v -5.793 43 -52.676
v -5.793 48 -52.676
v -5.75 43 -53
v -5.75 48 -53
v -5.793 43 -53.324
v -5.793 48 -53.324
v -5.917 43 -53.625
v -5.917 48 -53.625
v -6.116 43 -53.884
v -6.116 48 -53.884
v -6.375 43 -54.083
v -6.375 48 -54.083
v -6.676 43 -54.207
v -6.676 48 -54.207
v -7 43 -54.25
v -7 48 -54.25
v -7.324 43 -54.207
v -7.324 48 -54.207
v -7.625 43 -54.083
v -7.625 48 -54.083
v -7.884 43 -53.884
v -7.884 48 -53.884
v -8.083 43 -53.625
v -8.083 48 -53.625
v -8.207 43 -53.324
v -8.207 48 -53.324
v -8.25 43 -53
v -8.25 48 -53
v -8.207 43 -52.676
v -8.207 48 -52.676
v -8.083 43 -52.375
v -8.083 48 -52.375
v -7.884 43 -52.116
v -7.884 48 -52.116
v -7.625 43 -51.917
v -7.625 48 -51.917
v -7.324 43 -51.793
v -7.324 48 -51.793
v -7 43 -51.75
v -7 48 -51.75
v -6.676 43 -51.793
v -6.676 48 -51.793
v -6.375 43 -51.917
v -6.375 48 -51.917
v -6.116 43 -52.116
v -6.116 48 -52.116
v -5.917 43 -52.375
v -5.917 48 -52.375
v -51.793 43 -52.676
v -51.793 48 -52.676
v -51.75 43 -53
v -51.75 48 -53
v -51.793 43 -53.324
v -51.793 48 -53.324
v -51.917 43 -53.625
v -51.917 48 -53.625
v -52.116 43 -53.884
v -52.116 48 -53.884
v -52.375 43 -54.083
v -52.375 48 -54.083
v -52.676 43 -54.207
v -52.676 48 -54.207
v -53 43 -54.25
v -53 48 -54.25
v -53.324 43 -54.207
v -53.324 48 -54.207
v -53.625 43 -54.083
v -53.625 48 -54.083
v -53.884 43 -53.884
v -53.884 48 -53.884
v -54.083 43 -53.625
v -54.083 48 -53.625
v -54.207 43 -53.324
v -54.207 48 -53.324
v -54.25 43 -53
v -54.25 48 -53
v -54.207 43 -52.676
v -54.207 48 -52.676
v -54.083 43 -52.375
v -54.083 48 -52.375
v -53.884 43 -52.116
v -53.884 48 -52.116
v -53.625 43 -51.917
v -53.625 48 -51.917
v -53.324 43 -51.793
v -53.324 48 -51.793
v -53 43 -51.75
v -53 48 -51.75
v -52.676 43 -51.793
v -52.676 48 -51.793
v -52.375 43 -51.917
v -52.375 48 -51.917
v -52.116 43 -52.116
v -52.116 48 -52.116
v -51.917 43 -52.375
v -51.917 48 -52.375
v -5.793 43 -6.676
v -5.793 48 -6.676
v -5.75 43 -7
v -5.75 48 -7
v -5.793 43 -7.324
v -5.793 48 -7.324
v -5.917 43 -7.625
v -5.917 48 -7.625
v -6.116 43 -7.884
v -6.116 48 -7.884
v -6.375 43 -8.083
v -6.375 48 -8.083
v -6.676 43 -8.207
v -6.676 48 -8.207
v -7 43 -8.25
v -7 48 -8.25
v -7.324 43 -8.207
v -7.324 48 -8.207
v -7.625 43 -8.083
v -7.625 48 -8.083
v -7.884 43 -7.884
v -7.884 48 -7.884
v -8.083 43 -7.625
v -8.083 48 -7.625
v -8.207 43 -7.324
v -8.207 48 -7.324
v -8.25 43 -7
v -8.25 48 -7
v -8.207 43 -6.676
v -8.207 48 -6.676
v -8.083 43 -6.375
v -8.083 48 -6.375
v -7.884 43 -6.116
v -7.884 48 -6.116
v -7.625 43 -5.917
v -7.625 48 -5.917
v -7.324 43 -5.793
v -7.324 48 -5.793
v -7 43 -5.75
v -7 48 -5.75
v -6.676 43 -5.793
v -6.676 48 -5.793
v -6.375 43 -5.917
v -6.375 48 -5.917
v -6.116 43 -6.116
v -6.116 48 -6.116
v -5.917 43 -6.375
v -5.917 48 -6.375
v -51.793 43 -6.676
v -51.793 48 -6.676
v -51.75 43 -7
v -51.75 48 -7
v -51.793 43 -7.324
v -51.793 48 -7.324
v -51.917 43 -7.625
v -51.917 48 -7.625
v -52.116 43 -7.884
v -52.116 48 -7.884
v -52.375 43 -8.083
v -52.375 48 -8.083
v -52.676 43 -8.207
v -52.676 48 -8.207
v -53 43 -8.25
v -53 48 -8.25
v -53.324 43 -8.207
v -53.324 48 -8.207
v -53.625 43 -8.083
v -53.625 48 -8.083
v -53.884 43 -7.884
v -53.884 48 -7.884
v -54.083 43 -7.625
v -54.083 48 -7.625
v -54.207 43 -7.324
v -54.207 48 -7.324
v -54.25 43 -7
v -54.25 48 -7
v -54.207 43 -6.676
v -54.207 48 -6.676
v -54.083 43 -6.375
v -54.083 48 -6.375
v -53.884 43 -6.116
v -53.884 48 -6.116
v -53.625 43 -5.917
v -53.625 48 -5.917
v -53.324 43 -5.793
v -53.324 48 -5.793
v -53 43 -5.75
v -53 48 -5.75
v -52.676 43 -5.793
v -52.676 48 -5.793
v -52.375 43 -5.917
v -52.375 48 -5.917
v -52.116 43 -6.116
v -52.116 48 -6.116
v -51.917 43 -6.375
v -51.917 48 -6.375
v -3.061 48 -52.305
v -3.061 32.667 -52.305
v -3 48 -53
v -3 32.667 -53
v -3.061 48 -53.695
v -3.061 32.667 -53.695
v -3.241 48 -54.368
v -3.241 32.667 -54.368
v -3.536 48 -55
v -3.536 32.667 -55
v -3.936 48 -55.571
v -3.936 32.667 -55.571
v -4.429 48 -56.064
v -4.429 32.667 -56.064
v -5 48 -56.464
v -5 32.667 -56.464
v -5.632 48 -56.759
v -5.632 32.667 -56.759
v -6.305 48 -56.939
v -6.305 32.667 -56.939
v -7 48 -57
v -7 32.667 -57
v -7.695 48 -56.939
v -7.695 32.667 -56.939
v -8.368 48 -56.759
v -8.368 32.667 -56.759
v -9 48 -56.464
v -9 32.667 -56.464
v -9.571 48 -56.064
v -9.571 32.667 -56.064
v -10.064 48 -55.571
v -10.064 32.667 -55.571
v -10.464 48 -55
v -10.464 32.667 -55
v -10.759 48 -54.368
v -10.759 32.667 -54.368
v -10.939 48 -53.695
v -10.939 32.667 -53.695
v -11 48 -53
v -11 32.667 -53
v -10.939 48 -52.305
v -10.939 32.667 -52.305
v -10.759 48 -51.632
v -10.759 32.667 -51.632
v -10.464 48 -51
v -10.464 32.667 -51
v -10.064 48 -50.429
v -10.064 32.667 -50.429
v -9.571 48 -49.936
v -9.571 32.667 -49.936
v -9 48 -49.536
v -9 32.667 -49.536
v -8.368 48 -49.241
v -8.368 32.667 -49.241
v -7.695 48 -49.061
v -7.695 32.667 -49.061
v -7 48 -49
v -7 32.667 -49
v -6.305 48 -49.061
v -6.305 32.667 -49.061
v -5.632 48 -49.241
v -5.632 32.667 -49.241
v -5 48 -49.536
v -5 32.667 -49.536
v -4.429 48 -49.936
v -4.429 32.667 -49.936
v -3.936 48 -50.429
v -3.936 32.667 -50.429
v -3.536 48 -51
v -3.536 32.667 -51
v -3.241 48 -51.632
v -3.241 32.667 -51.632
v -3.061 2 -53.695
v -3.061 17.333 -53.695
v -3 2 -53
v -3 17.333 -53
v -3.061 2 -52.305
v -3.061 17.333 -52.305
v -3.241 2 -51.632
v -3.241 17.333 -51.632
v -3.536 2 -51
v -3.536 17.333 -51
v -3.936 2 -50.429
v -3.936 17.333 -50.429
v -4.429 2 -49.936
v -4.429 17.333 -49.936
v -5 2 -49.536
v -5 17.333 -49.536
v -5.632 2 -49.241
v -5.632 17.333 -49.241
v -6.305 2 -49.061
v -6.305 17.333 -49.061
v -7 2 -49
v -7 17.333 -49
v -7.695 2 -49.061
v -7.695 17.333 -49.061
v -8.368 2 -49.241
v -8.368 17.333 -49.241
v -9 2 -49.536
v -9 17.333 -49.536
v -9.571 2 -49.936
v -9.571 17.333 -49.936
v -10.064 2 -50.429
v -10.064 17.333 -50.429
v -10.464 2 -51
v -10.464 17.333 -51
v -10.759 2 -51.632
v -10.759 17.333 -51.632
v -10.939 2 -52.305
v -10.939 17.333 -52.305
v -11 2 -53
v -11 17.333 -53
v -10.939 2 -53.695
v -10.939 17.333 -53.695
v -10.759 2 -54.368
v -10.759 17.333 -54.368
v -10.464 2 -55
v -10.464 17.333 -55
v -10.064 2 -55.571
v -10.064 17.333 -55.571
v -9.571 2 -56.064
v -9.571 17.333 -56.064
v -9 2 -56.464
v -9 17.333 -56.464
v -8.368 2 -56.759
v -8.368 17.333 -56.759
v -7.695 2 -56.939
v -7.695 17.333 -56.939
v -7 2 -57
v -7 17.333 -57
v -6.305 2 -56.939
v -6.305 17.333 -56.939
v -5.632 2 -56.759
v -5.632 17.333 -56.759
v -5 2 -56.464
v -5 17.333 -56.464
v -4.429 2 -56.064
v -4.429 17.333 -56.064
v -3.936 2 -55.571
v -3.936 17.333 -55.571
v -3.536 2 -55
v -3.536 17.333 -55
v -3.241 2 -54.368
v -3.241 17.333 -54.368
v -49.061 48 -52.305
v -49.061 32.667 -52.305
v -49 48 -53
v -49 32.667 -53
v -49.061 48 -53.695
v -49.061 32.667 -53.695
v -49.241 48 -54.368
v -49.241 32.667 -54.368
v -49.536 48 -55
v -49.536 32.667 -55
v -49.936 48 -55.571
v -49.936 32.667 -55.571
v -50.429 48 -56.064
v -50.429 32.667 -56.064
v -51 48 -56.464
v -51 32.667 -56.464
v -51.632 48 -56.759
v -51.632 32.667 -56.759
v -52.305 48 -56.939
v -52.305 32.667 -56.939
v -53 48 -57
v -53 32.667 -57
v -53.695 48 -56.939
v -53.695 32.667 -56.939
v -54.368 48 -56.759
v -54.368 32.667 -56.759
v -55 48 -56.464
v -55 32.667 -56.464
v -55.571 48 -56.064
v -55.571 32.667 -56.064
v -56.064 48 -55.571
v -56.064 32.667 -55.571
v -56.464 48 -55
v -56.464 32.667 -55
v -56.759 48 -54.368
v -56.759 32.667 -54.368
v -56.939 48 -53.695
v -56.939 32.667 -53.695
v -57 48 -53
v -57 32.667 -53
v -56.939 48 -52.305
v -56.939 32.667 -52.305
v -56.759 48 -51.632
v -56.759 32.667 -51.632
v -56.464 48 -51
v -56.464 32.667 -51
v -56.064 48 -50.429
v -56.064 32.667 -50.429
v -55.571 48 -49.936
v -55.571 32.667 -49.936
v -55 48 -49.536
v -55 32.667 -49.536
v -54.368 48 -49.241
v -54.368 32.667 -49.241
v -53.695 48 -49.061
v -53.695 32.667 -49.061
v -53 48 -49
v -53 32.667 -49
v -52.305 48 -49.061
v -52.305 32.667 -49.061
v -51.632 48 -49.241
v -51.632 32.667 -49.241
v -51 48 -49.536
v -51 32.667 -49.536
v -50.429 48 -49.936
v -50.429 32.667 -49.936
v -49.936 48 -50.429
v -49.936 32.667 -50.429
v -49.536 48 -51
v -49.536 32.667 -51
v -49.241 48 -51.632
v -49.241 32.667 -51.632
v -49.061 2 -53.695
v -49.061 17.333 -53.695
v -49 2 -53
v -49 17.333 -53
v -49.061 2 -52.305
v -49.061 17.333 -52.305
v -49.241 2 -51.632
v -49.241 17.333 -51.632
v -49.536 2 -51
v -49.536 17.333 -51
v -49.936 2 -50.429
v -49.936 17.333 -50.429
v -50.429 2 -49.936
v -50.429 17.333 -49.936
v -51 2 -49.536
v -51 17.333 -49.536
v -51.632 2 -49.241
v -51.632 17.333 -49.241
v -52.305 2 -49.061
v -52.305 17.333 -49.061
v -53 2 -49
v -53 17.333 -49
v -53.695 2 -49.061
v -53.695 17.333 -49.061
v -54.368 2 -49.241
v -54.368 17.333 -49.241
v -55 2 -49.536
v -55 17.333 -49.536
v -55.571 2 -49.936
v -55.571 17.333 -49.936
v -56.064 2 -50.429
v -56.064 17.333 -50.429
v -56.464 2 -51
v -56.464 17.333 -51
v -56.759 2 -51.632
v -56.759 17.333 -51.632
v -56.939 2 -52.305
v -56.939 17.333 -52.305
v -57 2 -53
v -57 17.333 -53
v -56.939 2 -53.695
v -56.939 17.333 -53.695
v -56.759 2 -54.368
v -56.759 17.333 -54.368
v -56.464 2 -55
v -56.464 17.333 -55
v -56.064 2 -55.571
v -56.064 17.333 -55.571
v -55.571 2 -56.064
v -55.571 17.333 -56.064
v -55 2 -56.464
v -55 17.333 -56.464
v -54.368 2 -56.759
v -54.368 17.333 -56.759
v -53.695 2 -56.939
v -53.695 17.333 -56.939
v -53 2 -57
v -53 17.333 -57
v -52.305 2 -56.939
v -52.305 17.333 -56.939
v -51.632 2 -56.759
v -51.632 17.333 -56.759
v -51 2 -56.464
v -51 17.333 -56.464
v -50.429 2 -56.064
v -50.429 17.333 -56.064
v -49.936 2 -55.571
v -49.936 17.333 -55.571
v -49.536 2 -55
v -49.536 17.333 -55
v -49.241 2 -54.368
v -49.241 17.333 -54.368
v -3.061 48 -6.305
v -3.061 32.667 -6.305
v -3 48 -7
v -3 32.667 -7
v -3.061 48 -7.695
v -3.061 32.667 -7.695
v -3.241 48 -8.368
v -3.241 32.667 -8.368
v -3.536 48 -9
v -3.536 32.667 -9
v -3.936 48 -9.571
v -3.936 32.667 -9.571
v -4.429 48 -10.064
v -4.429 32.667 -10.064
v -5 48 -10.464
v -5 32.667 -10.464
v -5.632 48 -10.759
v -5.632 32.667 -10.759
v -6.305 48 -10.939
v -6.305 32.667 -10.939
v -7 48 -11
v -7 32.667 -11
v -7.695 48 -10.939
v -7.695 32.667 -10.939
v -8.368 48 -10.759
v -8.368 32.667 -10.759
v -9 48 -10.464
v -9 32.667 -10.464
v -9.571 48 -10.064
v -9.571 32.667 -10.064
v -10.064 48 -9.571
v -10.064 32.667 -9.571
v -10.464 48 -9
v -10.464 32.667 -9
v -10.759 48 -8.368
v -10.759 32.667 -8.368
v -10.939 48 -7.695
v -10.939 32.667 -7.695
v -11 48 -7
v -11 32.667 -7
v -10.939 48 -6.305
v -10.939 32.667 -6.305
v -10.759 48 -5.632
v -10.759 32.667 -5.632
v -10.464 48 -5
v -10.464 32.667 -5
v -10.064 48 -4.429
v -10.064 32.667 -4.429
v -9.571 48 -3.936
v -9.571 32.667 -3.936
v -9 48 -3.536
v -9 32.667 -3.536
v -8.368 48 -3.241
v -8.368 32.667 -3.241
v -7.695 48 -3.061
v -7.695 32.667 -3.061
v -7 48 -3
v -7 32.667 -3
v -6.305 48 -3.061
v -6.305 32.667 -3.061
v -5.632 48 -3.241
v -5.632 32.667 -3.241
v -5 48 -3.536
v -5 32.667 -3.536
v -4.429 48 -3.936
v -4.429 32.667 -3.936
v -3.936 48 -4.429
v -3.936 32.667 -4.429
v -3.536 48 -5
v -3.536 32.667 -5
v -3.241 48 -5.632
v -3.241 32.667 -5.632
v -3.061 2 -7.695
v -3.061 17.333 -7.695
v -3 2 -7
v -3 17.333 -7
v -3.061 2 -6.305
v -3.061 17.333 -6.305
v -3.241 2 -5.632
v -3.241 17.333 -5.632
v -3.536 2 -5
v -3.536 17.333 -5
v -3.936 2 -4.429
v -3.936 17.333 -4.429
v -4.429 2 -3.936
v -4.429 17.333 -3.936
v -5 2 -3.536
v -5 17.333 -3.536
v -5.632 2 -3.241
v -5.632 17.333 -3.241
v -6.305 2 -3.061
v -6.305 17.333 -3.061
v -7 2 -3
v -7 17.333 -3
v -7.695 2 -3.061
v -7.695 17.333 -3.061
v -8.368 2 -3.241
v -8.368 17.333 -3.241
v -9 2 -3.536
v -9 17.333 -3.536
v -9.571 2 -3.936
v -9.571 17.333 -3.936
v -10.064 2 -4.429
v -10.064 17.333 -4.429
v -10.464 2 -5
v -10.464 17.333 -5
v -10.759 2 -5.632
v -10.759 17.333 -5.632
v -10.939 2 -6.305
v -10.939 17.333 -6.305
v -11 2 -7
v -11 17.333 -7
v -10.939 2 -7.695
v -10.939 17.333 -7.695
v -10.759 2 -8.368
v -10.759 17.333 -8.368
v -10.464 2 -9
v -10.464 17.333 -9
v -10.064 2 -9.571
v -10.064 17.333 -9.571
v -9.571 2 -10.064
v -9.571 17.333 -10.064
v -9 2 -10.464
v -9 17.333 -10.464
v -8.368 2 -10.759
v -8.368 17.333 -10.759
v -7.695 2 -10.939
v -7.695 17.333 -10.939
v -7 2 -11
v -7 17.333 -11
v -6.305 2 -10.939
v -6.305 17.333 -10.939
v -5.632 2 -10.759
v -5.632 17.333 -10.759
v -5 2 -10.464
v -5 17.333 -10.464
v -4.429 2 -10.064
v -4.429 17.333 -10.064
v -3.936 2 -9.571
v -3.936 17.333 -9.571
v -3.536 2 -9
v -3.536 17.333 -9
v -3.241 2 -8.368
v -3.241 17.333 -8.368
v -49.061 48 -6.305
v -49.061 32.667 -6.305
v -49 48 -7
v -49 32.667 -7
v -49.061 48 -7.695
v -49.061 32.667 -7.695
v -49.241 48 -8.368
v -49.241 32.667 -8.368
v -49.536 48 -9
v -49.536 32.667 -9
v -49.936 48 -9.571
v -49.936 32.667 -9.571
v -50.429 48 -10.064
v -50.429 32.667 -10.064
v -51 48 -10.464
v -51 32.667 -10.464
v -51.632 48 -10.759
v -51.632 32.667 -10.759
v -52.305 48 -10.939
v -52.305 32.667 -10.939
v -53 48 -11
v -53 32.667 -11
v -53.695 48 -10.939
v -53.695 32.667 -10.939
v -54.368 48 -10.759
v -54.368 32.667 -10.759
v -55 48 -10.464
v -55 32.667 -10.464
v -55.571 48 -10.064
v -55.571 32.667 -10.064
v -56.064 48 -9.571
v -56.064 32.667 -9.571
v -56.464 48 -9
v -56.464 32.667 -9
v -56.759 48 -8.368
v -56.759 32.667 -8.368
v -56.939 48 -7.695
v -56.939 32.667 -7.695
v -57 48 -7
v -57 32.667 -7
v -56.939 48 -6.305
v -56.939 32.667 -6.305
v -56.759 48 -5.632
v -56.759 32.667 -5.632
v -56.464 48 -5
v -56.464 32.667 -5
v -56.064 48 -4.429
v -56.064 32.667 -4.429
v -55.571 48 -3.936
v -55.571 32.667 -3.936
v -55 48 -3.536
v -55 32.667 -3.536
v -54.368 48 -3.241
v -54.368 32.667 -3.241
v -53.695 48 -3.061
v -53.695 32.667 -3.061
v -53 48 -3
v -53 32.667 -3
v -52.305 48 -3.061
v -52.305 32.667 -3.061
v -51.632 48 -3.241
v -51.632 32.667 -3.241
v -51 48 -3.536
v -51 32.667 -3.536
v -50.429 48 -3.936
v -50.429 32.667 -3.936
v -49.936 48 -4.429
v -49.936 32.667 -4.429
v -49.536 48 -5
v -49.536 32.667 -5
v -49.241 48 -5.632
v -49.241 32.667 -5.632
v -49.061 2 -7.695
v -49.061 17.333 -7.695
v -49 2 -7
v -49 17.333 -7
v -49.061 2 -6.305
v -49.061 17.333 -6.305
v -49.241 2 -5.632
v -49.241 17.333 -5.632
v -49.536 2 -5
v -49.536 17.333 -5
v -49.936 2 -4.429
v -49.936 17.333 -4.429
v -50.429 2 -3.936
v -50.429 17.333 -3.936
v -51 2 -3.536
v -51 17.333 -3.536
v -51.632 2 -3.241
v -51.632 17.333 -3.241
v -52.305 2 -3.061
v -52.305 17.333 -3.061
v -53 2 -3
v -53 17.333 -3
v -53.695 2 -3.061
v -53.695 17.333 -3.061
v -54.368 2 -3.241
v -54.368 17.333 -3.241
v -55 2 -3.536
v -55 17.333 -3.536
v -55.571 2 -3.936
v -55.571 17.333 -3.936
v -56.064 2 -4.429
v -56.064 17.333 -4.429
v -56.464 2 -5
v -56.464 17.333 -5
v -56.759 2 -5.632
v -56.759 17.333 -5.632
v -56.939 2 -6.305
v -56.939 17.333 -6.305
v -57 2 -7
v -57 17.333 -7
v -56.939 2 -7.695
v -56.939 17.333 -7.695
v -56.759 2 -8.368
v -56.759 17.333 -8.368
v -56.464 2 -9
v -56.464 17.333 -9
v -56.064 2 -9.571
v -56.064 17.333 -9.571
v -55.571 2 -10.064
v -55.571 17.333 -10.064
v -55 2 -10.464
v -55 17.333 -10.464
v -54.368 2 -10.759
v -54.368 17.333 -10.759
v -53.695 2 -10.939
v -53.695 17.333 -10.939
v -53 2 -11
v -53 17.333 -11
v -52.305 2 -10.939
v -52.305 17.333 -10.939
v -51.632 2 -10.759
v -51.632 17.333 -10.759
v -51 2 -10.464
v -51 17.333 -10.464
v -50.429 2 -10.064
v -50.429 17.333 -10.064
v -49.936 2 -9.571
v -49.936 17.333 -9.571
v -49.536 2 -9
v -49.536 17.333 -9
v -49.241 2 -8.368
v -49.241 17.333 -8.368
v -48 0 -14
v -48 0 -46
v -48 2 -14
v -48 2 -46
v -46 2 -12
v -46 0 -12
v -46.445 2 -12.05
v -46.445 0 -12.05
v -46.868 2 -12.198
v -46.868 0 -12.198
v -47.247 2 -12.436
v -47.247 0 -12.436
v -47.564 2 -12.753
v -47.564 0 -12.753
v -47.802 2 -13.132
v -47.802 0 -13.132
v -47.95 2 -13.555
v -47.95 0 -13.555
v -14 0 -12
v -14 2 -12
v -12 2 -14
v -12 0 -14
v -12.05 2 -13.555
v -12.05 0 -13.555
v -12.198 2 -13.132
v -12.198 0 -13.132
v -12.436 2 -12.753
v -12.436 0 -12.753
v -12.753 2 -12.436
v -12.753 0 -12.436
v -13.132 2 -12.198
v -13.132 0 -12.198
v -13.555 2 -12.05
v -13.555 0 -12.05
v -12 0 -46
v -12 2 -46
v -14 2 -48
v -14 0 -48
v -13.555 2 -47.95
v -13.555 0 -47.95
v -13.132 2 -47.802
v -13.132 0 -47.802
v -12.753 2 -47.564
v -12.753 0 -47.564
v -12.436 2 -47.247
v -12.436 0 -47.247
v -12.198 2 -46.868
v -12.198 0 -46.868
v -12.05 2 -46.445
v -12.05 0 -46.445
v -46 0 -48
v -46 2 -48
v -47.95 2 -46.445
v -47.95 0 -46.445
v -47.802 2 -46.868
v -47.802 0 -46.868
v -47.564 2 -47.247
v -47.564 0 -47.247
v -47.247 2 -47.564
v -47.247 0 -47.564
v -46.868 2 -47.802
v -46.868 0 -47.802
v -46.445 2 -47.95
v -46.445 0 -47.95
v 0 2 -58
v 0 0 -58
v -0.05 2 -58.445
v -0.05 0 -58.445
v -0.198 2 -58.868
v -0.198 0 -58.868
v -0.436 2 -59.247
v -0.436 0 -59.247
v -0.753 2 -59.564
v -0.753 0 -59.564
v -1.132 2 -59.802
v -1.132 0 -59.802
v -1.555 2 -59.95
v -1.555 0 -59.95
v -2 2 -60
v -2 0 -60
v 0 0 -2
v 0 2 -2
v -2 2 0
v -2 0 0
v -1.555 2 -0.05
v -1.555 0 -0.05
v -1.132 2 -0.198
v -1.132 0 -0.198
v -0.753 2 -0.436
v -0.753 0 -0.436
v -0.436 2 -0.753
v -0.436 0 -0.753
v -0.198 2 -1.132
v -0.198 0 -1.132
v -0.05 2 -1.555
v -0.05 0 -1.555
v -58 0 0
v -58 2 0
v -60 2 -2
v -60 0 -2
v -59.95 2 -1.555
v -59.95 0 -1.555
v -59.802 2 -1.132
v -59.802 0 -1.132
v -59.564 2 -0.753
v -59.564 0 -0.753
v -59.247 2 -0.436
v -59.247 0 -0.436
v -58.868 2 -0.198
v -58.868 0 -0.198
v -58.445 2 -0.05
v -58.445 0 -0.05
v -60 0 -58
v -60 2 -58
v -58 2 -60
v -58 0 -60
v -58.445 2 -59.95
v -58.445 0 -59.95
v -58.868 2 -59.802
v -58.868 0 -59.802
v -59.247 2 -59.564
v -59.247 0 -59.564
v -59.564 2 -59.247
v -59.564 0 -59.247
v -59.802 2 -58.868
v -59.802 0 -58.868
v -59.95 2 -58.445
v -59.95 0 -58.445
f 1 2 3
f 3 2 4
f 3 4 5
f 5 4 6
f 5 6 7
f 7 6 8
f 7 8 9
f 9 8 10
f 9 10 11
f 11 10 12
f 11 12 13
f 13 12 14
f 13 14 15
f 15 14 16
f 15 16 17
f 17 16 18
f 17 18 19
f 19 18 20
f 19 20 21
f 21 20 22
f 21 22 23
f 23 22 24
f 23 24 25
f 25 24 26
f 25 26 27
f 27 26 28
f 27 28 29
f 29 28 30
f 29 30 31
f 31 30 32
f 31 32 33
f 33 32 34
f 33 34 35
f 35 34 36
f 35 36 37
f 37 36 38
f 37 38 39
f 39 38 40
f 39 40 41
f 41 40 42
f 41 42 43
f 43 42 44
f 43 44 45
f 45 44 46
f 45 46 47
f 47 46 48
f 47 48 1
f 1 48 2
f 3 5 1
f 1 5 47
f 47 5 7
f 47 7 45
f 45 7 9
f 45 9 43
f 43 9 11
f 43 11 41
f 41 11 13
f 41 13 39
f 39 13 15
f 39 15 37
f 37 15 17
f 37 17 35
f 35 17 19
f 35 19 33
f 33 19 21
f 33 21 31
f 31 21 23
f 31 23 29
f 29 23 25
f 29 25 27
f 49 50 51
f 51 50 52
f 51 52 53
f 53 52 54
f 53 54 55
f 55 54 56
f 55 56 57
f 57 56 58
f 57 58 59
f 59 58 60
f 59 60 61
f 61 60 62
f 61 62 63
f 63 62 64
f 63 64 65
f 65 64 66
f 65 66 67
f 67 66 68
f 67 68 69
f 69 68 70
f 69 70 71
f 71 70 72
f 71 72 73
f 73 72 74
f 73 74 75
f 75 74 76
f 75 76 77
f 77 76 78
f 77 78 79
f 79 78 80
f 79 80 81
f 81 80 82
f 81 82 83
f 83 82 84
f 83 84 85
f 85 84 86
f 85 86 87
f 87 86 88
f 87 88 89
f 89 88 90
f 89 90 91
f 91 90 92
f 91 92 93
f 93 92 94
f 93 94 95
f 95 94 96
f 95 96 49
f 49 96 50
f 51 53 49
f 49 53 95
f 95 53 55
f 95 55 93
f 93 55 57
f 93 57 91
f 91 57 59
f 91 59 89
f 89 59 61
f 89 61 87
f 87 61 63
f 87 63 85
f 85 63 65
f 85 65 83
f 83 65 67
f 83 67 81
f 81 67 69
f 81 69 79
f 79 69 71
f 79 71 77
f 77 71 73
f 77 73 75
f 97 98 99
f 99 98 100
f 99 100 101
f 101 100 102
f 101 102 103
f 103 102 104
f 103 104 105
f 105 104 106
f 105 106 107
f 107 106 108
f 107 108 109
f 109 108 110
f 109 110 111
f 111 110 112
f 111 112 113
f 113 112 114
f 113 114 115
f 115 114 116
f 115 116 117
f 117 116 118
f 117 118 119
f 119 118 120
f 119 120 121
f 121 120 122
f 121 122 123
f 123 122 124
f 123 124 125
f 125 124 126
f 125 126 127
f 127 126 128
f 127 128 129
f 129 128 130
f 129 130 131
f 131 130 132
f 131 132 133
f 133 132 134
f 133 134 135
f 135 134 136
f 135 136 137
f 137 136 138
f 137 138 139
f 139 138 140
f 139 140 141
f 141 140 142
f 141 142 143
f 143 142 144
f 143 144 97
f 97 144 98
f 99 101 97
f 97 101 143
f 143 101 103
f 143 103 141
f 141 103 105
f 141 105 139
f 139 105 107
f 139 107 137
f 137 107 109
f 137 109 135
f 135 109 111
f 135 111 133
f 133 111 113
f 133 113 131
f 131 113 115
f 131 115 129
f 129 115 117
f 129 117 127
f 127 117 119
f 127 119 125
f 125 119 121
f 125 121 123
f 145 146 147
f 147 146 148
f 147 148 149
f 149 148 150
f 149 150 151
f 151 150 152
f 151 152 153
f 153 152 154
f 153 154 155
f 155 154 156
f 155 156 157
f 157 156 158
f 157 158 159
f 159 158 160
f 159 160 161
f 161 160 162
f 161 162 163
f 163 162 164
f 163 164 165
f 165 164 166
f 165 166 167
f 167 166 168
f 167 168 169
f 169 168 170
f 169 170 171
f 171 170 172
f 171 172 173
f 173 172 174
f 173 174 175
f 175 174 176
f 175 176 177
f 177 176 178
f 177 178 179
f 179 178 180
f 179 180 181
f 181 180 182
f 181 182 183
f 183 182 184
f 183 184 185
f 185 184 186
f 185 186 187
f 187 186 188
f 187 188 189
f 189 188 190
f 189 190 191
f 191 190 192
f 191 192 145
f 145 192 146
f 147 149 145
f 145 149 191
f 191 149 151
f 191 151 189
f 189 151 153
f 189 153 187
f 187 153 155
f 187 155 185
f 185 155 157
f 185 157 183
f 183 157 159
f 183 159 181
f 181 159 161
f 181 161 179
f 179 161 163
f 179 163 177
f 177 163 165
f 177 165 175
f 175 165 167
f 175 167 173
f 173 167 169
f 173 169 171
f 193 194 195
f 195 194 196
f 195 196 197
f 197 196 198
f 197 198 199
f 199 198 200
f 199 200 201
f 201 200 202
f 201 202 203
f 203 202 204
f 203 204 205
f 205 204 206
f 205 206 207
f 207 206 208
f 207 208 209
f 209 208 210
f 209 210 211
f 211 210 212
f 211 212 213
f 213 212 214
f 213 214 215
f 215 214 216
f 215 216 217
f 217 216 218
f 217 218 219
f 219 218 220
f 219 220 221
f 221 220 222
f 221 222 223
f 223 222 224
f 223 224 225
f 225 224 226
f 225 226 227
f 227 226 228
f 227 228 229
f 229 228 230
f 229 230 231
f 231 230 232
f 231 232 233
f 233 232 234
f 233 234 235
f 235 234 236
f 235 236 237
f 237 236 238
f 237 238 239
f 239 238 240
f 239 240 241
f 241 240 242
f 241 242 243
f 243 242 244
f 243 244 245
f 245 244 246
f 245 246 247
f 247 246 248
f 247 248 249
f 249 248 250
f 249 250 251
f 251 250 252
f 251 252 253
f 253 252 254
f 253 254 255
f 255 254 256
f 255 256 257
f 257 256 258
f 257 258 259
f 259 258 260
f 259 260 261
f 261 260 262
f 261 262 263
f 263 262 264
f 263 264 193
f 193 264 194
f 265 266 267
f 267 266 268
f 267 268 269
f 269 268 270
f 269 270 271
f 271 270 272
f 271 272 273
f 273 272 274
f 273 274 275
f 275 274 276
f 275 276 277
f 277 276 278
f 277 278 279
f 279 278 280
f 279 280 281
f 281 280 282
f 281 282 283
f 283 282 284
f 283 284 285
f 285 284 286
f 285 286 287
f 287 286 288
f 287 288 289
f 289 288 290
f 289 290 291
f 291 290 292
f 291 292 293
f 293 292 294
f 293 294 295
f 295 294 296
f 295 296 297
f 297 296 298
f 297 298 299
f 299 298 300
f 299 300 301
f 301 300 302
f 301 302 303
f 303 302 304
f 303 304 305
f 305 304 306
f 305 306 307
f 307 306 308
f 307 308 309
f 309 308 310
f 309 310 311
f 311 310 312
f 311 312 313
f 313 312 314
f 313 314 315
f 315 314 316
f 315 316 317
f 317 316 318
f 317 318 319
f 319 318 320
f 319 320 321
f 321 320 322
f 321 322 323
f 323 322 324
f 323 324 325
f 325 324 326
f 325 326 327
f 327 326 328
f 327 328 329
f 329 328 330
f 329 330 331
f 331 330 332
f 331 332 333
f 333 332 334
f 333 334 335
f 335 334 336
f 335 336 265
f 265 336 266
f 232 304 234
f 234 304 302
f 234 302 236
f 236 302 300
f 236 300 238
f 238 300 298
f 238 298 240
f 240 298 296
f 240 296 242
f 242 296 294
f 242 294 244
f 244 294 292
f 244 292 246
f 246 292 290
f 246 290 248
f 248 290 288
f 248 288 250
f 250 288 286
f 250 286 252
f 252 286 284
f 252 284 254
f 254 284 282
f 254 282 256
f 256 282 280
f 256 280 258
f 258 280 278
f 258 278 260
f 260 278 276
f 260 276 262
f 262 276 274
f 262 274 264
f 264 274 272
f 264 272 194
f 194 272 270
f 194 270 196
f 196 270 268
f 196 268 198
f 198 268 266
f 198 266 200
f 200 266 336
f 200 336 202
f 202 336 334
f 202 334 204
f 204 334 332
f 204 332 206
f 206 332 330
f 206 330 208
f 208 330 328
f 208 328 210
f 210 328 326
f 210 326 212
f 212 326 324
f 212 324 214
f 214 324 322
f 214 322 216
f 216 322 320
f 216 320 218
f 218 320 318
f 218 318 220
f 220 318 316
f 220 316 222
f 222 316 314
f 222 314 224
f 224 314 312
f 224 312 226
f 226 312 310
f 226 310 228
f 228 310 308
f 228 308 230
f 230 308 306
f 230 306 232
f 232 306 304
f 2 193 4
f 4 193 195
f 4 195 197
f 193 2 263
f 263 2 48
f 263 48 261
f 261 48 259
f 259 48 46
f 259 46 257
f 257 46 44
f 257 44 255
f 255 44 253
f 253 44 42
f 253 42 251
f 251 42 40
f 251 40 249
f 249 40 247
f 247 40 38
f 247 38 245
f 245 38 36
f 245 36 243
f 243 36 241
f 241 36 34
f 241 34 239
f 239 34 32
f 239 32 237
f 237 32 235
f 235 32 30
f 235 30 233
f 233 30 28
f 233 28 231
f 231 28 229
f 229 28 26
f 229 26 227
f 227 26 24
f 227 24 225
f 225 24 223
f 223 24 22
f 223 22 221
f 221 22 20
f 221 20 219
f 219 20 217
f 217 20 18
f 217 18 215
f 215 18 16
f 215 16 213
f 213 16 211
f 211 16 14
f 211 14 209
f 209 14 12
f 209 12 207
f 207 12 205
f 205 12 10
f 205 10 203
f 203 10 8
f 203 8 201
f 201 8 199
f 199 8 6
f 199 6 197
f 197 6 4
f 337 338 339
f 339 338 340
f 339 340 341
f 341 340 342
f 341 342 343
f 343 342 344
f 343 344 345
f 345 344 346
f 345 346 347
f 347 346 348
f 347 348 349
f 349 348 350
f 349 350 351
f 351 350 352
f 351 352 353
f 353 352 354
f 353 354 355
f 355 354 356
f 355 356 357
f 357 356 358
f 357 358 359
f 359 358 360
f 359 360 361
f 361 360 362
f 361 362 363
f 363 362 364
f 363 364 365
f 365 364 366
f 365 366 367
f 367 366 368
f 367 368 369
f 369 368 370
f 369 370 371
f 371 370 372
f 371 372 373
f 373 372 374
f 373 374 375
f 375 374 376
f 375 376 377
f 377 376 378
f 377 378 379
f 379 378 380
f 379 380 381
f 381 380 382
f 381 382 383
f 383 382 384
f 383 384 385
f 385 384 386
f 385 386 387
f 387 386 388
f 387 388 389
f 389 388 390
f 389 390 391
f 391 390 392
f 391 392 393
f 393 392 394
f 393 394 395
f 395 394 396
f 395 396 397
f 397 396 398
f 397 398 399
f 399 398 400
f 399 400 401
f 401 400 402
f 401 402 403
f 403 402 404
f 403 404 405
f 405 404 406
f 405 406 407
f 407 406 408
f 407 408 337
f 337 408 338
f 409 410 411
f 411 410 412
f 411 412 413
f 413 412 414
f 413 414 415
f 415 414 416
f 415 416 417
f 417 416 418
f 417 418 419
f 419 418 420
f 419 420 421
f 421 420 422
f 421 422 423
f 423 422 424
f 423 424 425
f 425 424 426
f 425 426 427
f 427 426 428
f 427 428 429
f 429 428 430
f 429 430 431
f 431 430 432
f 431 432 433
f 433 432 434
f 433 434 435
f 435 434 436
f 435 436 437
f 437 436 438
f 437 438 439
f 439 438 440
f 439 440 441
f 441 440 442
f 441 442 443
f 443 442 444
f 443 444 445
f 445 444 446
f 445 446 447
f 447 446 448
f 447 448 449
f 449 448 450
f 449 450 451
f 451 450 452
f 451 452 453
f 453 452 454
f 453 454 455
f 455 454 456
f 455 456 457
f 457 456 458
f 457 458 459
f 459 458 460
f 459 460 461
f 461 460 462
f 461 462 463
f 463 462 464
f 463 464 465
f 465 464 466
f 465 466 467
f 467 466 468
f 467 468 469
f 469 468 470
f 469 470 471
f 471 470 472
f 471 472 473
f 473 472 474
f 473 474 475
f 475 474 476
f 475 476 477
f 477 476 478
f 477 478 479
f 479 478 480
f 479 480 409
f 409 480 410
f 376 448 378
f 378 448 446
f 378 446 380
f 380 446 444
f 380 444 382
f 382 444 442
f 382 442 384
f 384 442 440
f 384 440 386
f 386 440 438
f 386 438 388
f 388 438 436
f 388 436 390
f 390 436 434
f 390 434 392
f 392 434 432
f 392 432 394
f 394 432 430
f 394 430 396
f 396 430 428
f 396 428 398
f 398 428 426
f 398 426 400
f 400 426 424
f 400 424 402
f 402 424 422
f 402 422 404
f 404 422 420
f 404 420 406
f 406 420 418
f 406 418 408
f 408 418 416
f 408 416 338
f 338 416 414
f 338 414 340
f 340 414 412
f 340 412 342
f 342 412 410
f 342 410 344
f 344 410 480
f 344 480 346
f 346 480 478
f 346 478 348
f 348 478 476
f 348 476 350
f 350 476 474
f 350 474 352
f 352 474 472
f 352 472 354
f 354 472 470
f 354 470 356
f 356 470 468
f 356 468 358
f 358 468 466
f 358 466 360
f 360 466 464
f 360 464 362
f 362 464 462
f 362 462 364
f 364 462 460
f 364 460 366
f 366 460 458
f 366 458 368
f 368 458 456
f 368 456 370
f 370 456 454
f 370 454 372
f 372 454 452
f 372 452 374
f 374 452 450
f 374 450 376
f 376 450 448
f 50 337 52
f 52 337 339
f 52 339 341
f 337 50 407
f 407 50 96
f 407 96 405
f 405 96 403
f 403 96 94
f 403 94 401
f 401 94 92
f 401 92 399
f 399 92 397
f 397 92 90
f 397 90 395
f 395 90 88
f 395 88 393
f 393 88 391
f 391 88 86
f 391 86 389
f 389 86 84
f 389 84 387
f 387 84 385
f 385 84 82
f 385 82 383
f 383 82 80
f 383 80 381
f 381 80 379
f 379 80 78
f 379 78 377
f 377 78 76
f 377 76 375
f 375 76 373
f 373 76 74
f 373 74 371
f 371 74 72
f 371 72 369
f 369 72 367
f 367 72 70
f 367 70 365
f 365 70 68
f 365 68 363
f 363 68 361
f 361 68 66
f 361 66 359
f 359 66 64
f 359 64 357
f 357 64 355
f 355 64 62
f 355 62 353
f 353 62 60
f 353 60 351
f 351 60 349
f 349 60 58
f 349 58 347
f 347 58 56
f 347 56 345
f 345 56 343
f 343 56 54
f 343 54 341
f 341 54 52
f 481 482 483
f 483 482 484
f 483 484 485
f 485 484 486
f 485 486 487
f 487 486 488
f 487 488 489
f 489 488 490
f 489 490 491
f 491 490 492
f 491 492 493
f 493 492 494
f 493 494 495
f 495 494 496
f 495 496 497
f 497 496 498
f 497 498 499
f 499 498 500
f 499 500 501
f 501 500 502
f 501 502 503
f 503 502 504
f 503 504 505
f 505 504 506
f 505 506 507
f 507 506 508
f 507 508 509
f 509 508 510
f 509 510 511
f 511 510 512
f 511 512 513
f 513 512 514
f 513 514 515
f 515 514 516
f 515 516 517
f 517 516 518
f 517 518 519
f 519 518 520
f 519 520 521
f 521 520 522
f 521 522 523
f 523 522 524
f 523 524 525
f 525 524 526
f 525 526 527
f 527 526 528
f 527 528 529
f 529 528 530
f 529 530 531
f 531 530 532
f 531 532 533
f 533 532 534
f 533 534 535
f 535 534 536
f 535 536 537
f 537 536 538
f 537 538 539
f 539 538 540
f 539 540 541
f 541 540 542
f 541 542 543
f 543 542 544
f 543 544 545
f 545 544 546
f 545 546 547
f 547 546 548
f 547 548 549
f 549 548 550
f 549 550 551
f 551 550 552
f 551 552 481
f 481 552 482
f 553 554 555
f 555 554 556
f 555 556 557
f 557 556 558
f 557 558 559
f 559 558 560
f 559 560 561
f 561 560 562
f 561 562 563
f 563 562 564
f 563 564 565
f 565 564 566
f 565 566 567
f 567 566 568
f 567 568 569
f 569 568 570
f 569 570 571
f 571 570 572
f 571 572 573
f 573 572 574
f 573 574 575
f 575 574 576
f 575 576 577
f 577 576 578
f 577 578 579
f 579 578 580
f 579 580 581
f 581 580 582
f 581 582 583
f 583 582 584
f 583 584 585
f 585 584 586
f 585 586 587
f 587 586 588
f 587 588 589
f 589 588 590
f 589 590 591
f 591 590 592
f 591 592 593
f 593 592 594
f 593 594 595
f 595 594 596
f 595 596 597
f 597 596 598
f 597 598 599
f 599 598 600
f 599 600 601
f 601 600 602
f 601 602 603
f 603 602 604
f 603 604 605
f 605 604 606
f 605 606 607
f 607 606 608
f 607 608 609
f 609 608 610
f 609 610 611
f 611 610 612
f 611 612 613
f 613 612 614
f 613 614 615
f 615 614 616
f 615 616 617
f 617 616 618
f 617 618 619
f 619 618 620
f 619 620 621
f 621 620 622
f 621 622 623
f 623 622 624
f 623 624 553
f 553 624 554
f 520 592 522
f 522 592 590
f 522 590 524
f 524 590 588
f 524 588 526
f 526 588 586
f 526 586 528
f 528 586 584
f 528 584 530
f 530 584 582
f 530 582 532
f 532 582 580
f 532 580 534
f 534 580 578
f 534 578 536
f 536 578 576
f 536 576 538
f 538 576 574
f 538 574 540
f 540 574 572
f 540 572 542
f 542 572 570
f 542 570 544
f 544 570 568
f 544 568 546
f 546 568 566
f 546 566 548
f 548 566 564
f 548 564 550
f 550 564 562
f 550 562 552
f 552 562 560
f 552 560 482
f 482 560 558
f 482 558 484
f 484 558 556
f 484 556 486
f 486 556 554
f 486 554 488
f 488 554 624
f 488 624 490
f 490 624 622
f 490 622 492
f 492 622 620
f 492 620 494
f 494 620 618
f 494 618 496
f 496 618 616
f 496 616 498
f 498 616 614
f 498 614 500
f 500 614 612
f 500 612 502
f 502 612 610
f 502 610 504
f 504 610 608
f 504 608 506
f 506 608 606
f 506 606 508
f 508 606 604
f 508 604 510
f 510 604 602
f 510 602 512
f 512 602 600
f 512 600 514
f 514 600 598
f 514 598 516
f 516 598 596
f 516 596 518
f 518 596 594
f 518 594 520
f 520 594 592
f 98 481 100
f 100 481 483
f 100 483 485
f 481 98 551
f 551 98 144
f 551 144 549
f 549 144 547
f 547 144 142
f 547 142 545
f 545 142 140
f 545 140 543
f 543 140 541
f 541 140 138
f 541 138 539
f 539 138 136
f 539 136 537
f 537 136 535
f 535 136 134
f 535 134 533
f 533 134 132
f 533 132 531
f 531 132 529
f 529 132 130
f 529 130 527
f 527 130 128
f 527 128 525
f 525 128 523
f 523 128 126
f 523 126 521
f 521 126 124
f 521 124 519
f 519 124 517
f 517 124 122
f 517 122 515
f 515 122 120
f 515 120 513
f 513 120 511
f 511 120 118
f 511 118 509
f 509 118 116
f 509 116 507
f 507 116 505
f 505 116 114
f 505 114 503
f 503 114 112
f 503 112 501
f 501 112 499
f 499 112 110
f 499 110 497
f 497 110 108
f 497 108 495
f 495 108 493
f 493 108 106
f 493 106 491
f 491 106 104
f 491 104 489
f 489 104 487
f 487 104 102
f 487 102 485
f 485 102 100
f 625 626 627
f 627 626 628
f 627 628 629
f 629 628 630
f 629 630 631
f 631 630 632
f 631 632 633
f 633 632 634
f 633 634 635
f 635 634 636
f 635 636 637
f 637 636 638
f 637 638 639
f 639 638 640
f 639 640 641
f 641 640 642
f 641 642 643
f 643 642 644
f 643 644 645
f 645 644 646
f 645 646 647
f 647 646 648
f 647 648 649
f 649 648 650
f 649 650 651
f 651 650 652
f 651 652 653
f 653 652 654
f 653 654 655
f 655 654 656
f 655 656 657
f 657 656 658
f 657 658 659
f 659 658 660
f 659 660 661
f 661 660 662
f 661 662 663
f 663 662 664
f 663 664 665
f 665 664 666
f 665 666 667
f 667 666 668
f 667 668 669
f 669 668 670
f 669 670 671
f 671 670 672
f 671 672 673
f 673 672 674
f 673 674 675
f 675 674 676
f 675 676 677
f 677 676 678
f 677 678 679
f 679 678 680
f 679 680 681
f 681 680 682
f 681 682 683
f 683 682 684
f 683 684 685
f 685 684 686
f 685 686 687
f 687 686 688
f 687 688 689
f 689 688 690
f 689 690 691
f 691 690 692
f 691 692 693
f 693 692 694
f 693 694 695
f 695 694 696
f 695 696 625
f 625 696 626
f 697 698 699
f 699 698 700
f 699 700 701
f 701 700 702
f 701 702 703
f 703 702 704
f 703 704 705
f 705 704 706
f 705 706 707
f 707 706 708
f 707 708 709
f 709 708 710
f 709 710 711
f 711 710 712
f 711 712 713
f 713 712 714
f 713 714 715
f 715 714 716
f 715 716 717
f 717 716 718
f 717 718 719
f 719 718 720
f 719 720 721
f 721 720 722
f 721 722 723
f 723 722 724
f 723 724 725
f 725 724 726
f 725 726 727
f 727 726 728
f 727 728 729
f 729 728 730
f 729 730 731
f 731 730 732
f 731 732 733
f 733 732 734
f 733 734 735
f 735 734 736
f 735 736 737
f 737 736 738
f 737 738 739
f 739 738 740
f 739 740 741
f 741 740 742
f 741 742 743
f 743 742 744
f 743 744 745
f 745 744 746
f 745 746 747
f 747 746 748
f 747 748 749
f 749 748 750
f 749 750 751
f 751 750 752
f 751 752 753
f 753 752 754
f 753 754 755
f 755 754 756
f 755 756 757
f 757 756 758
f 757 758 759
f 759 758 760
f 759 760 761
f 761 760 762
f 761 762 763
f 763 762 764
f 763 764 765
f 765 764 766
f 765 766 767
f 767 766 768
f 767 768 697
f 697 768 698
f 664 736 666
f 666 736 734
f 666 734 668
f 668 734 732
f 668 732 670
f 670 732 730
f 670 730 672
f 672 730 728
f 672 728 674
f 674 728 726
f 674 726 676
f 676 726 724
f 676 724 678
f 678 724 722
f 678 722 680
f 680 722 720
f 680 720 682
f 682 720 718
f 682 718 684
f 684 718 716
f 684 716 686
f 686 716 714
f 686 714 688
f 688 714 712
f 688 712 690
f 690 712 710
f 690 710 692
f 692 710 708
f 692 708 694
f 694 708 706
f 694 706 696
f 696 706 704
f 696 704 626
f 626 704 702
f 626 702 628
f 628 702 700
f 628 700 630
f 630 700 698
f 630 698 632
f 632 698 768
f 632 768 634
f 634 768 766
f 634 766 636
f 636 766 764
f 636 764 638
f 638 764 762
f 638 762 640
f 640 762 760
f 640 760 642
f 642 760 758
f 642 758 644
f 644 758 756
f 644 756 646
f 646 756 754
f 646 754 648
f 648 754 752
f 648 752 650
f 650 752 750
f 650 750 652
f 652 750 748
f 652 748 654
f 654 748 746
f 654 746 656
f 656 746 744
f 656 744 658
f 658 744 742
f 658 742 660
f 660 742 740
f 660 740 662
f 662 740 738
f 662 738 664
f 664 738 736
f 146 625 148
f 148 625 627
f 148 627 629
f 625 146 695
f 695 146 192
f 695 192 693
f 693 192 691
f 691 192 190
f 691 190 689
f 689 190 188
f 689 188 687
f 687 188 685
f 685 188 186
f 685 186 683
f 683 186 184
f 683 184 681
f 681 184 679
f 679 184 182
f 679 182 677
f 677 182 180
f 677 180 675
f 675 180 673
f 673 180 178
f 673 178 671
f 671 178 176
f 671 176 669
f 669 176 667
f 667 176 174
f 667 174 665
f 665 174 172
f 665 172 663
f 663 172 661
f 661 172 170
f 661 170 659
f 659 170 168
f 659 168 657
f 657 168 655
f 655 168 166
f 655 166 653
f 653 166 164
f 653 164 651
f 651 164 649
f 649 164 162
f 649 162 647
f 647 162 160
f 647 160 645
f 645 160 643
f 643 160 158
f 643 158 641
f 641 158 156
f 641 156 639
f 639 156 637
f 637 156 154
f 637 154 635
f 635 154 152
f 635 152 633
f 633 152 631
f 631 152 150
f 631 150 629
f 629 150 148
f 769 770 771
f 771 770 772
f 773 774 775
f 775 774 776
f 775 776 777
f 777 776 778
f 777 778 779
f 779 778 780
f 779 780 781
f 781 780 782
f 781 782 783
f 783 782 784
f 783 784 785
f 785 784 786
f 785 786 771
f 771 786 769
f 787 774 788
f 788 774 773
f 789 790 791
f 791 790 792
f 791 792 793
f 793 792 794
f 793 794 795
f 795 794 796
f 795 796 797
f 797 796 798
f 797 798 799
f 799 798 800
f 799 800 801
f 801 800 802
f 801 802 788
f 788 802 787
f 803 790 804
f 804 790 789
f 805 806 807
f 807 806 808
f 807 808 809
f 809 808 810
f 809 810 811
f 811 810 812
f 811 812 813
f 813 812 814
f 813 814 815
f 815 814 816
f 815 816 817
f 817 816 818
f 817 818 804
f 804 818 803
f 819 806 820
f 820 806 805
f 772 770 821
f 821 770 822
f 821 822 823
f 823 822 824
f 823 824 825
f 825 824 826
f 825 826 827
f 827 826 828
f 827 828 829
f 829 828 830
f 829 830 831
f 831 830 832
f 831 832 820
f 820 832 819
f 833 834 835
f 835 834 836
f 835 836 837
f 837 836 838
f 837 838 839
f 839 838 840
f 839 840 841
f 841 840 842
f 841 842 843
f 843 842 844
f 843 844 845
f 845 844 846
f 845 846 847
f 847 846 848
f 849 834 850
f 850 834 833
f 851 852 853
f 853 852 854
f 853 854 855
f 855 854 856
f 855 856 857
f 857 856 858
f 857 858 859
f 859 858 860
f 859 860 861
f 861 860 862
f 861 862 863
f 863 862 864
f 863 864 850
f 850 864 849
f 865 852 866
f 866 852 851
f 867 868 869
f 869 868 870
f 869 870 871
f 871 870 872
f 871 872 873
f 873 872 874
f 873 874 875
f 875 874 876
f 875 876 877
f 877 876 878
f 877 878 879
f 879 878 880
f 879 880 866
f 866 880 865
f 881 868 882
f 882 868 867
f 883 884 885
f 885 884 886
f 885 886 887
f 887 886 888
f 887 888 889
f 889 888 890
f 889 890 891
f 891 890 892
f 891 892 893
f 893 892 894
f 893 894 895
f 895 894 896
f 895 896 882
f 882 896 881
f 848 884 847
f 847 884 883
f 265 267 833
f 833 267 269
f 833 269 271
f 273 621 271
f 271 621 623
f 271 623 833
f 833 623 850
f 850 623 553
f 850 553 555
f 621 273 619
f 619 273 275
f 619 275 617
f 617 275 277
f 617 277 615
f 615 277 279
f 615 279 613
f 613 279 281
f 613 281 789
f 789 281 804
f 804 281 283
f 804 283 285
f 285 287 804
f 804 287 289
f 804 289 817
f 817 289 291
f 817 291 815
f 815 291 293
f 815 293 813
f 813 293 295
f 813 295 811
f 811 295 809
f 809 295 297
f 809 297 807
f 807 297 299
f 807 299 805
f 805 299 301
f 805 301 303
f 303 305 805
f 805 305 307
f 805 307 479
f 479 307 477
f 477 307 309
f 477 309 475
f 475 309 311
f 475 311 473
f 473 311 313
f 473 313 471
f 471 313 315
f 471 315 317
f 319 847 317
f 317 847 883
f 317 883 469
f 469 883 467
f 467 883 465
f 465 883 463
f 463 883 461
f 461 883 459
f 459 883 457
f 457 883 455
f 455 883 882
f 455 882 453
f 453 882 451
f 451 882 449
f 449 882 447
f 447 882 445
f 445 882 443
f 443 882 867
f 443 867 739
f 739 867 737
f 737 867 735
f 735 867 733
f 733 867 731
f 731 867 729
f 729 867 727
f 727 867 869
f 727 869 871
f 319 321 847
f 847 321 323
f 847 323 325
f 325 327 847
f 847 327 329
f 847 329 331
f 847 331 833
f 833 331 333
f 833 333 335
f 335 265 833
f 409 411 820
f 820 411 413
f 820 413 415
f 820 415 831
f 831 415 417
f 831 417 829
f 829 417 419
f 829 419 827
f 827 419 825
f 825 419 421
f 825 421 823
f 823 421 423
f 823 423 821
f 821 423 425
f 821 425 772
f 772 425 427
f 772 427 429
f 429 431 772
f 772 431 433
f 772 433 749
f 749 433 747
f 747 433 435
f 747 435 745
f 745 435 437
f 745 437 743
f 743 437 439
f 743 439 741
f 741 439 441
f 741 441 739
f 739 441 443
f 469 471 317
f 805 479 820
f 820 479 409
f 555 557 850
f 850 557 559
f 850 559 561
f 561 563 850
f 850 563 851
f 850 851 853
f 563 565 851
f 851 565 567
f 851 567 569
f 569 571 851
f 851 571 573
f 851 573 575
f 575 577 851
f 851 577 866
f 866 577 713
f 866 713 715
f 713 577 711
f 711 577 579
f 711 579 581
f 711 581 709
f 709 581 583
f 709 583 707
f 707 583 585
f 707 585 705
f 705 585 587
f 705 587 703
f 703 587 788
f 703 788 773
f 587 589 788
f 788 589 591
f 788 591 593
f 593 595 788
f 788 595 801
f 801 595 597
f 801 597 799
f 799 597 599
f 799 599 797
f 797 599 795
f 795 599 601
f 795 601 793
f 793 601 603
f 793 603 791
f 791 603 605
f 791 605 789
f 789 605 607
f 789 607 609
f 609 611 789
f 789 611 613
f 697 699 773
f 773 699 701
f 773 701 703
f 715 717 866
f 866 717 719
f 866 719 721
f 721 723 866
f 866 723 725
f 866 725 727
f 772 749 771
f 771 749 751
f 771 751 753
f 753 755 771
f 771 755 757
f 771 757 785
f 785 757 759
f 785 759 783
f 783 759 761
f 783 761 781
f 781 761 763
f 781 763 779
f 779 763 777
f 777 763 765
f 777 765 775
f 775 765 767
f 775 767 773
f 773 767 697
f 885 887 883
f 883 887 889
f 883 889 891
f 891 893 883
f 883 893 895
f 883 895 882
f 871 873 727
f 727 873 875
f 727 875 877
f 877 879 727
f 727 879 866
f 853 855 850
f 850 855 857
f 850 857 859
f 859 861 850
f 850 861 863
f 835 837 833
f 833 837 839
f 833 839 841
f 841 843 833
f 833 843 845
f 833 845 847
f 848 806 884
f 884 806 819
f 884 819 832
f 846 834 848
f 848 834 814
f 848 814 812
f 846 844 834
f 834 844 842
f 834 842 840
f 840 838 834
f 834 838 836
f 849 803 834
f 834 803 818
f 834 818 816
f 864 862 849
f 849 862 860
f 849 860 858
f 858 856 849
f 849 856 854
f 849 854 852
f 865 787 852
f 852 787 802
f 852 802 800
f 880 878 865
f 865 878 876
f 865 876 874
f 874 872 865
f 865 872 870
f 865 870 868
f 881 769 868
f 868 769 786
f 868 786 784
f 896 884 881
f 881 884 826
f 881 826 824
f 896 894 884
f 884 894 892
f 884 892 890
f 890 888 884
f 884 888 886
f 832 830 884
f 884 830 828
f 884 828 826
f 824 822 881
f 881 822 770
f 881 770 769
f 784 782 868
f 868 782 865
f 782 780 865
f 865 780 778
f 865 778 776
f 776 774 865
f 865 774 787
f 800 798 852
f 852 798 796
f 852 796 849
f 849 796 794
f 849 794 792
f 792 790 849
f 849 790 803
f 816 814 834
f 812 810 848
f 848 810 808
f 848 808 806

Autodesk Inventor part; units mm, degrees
ref_plane "YZ Plane" through (0, 0, 0) normal (1, 0, 0) x (0, 1, 0)
ref_plane "XZ Plane" through (0, 0, 0) normal (0, 1, 0) x (-1, 0, 0)
sketch "Sketch2" plane through (0, 0, 0) normal (0, 1, 0) x (-1, 0, 0)
  line L0 (2, 0) -> (58, 0)
  line L1 (60, -2) -> (60, -58)
  line L2 (58, -60) -> (2, -60)
  line L3 (0, -58) -> (0, -2)
  line L4 (48, -46) -> (48, -14)
  line L5 (46, -12) -> (14, -12)
  line L6 (12, -14) -> (12, -46)
  line L7 (14, -48) -> (46, -48)
  arc A0 (60, -2) -> (58, 0) centre (58, -2) ccw
  arc A1 (58, -60) -> (60, -58) centre (58, -58) ccw
  arc A2 (0, -58) -> (2, -60) centre (2, -58) ccw
  arc A3 (2, 0) -> (0, -2) centre (2, -2) ccw
  arc A4 (14, -12) -> (12, -14) centre (14, -14) ccw
  arc A5 (12, -46) -> (14, -48) centre (14, -46) ccw
  arc A6 (46, -48) -> (48, -46) centre (46, -46) ccw
  arc A7 (48, -14) -> (46, -12) centre (46, -14) ccw
  point P0 (0, 0)
  point P1 (60, -60)
  point P2 (60, 0)
  point P3 (0, -60)
  dimension "d9" = 60
  dimension "d10" = 60
  dimension "d11" = 12
  dimension "d12" = 2
extrude "Extrusion2" add sketch "Sketch2" along normal blind 2
sketch "Sketch3" plane through (0, 2, 0) normal (0, 1, 0) x (1, 0, 0)
  circle A0 centre (-53, 7) radius 4
  circle A1 centre (-7, 7) radius 4
  circle A2 centre (-53, 53) radius 4
  circle A3 centre (-7, 53) radius 4
  line L0 (-58, 0) -> (-2, 0) projected
  line L1 (-60, 58) -> (-60, 2) projected
  line L2 (-2, 60) -> (-58, 60) projected
  line L3 (0, 2) -> (0, 58) projected
  point P0 (0, 0)
  dimension "d15" = 8
  dimension "d16" = 8
  dimension "d17" = 8
  dimension "d18" = 8
  dimension "d19" = 7
  dimension "d20" = 7
  dimension "d21" = 7
  dimension "d22" = 7
  dimension "d23" = 7
  dimension "d24" = 7
  dimension "d25" = 7
  dimension "d26" = 7
extrude "Extrusion4" add sketch "Sketch3" along normal blind 46
ref_plane "Work Plane1" through (-7, 48, -53) normal (0, 1, 0) x (1, 0, 0)
sketch "Sketch5" plane through (-7, 48, -53) normal (0, 1, 0) x (1, 0, 0)
  circle A0 centre (-46, 0) radius 4 projected
  circle A1 centre (-46, 0) radius 1.25
  circle A2 centre (0, 0) radius 4 projected
  circle A3 centre (0, 0) radius 1.25
  circle A4 centre (0, -46) radius 4 projected
  circle A5 centre (0, -46) radius 1.25
  circle A6 centre (-46, -46) radius 4 projected
  circle A7 centre (-46, -46) radius 1.25
  point P0 (7, -53)
  dimension "d36" = 2.5
  dimension "d37" = 2.5
  dimension "d38" = 2.5
  dimension "d39" = 2.5
extrude "Extrusion5" cut sketch "Sketch5" against normal blind 5 contours A1 | A3 | A5 | A7
properties part number "lidar base"
